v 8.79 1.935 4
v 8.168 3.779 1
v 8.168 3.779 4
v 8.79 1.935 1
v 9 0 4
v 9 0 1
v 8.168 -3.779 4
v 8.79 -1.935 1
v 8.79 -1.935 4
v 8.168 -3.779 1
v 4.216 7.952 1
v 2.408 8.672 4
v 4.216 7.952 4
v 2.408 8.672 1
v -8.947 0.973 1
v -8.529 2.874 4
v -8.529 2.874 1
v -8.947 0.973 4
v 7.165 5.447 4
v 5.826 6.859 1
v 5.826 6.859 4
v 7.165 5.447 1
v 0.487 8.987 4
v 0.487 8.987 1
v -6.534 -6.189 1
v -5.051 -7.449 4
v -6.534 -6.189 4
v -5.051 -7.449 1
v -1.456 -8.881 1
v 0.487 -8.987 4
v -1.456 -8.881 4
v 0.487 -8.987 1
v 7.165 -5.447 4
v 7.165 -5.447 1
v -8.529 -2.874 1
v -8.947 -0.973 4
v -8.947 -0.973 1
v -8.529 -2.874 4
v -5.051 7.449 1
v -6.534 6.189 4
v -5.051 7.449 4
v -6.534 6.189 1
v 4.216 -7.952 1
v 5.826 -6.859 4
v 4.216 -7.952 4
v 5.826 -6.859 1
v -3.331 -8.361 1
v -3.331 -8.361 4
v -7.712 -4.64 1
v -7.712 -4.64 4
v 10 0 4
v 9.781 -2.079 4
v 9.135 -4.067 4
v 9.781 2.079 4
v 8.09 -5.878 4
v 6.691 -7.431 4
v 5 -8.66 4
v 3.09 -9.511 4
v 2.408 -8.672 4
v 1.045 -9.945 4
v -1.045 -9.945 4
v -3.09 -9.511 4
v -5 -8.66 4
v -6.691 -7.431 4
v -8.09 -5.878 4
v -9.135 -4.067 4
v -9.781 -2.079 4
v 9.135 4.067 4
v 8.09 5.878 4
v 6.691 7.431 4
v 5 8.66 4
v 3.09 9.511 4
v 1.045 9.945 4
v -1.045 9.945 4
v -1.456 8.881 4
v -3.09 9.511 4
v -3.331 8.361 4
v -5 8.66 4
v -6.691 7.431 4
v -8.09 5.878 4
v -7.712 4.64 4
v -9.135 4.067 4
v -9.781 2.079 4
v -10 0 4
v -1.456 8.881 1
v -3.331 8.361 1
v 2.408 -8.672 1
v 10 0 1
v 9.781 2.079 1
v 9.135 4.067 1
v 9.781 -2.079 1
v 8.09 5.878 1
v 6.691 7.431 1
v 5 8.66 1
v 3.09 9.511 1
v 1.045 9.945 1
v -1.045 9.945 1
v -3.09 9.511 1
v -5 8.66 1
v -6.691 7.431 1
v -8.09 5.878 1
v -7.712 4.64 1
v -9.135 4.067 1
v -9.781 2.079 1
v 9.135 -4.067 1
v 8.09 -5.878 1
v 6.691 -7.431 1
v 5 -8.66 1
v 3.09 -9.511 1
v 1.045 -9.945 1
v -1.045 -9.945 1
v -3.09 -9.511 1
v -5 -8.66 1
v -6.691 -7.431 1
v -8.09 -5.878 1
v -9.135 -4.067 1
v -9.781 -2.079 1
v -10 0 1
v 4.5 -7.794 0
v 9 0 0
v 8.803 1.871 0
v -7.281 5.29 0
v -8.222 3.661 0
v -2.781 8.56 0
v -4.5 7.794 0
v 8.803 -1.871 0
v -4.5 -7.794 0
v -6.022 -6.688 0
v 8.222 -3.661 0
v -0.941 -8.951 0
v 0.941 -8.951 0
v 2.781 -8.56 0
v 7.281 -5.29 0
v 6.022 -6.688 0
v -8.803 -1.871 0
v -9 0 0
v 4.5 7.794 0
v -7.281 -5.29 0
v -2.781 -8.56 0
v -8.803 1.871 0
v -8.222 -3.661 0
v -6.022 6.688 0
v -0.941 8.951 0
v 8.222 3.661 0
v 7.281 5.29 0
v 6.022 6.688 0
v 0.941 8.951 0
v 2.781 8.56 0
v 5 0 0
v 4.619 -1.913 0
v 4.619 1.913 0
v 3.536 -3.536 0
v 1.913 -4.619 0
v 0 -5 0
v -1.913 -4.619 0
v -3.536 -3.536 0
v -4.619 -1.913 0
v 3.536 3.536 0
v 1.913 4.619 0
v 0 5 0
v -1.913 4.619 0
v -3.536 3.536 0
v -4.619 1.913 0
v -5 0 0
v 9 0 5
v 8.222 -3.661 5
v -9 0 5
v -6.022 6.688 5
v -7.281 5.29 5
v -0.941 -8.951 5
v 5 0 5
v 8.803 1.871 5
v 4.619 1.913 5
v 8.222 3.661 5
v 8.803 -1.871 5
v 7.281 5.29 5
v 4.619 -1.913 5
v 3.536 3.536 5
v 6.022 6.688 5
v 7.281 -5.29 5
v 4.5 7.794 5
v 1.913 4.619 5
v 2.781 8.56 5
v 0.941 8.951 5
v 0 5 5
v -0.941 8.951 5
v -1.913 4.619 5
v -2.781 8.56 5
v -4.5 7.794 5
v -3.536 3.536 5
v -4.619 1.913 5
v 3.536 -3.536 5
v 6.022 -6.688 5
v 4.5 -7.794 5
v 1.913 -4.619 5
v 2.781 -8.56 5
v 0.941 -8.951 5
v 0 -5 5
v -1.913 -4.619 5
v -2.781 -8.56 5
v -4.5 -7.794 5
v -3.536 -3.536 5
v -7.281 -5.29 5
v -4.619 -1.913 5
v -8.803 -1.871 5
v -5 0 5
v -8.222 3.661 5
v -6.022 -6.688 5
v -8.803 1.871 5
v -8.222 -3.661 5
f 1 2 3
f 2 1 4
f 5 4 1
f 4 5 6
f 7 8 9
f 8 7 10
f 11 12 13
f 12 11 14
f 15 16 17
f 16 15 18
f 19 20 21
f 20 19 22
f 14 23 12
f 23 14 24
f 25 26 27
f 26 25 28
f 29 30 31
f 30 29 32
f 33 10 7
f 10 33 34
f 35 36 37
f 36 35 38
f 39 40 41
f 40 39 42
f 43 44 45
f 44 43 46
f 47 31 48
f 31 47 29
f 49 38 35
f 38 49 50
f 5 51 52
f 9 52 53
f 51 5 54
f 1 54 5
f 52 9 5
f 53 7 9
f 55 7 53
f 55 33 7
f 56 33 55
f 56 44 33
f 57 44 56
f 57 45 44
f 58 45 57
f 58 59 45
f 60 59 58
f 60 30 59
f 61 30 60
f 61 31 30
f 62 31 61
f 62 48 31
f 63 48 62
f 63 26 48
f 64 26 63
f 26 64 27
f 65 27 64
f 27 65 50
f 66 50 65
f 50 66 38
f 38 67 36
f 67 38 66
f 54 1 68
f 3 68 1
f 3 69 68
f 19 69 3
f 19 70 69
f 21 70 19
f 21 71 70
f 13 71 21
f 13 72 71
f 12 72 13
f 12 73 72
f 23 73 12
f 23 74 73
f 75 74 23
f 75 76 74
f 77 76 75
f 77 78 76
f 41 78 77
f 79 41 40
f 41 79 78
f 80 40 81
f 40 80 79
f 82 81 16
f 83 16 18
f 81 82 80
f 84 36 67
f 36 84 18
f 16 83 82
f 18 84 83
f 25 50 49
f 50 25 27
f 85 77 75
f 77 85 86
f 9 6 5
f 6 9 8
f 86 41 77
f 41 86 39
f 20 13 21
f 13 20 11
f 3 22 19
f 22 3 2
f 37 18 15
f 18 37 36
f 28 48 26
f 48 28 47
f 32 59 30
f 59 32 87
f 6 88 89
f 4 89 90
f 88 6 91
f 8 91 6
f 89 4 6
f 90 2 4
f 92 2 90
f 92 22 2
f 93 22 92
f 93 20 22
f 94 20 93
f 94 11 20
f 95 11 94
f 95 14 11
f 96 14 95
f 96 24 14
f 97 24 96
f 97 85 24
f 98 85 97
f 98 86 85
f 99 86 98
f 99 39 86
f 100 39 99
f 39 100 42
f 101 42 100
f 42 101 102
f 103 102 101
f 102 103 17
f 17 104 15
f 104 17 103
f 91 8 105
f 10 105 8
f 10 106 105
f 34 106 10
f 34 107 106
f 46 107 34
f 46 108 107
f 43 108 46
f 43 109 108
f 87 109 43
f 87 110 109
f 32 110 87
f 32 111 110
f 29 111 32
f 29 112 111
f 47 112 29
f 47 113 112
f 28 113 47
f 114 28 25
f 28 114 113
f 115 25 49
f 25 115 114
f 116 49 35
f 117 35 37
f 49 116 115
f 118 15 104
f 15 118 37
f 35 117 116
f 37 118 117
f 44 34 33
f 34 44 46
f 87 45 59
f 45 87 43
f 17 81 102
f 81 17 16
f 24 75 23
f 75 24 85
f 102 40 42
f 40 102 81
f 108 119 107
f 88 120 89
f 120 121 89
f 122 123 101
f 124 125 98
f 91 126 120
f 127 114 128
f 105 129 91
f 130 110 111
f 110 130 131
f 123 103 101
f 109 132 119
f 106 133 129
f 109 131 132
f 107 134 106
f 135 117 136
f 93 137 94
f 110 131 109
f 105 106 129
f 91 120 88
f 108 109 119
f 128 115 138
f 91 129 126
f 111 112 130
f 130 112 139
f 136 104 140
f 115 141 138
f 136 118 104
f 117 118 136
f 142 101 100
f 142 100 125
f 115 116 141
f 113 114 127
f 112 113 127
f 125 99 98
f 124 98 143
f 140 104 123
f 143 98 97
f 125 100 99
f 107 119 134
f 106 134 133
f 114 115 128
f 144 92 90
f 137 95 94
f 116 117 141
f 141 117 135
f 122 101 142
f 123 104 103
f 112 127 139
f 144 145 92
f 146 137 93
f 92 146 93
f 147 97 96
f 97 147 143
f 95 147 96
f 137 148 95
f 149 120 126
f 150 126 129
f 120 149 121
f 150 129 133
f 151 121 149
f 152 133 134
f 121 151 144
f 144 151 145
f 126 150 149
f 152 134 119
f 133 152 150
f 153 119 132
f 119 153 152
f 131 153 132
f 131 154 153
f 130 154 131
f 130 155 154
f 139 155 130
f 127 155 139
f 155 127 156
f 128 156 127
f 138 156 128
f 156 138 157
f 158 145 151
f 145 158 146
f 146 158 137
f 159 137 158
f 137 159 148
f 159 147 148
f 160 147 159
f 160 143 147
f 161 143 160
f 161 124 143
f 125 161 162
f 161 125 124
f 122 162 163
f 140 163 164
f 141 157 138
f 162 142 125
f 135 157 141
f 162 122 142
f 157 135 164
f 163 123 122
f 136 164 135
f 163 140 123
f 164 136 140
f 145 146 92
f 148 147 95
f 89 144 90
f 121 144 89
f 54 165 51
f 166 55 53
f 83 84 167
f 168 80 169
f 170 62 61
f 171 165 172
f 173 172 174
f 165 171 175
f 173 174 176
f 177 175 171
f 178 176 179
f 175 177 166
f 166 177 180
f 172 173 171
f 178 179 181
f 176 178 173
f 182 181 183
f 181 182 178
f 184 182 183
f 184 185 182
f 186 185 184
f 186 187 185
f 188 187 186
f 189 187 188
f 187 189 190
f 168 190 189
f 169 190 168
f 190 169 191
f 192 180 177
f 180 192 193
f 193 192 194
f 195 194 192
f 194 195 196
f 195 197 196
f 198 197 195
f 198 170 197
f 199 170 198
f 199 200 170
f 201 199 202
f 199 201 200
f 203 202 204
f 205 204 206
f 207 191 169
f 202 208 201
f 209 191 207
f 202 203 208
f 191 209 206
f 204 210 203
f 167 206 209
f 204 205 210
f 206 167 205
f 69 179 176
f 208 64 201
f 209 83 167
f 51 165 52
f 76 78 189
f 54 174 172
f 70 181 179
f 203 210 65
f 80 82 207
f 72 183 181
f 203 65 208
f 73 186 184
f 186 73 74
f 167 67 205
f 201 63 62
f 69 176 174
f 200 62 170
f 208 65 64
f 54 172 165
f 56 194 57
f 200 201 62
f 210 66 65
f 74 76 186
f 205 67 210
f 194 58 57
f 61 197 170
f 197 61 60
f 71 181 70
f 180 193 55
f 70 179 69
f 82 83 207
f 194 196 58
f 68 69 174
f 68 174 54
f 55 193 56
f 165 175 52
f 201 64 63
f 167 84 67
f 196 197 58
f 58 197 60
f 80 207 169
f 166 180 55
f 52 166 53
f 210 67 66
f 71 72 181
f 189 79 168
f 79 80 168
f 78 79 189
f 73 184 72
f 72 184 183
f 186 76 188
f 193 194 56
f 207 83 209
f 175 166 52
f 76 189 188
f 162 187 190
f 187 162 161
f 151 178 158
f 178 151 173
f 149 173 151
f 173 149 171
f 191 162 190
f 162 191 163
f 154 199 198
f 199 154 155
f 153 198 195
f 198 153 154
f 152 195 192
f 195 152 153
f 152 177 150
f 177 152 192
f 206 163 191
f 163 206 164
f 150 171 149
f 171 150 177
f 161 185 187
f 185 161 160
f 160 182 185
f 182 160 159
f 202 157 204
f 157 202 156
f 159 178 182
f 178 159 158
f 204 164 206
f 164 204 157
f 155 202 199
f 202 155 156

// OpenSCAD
// End cap with optional chamfer to smooth edges
// chamfer: size of edge bevel; ensure height >= 2*chamfer
module end_cap(outer_diameter=20, inner_diameter=10, height=5, chamfer=1) {
    difference() {
        union() {
            // main body
            translate([0, 0, chamfer])
                cylinder(d=outer_diameter - 2 * chamfer, h=height - 2 * chamfer);
            // bottom chamfer
            cylinder(d1=outer_diameter - 2 * chamfer, d2=outer_diameter, h=chamfer);
            // top chamfer
            translate([0, 0, height - chamfer])
                cylinder(d1=outer_diameter, d2=outer_diameter - 2 * chamfer, h=chamfer);
        }
        // inner hole
        cylinder(d=inner_diameter, h=height);
    }
}

end_cap();
